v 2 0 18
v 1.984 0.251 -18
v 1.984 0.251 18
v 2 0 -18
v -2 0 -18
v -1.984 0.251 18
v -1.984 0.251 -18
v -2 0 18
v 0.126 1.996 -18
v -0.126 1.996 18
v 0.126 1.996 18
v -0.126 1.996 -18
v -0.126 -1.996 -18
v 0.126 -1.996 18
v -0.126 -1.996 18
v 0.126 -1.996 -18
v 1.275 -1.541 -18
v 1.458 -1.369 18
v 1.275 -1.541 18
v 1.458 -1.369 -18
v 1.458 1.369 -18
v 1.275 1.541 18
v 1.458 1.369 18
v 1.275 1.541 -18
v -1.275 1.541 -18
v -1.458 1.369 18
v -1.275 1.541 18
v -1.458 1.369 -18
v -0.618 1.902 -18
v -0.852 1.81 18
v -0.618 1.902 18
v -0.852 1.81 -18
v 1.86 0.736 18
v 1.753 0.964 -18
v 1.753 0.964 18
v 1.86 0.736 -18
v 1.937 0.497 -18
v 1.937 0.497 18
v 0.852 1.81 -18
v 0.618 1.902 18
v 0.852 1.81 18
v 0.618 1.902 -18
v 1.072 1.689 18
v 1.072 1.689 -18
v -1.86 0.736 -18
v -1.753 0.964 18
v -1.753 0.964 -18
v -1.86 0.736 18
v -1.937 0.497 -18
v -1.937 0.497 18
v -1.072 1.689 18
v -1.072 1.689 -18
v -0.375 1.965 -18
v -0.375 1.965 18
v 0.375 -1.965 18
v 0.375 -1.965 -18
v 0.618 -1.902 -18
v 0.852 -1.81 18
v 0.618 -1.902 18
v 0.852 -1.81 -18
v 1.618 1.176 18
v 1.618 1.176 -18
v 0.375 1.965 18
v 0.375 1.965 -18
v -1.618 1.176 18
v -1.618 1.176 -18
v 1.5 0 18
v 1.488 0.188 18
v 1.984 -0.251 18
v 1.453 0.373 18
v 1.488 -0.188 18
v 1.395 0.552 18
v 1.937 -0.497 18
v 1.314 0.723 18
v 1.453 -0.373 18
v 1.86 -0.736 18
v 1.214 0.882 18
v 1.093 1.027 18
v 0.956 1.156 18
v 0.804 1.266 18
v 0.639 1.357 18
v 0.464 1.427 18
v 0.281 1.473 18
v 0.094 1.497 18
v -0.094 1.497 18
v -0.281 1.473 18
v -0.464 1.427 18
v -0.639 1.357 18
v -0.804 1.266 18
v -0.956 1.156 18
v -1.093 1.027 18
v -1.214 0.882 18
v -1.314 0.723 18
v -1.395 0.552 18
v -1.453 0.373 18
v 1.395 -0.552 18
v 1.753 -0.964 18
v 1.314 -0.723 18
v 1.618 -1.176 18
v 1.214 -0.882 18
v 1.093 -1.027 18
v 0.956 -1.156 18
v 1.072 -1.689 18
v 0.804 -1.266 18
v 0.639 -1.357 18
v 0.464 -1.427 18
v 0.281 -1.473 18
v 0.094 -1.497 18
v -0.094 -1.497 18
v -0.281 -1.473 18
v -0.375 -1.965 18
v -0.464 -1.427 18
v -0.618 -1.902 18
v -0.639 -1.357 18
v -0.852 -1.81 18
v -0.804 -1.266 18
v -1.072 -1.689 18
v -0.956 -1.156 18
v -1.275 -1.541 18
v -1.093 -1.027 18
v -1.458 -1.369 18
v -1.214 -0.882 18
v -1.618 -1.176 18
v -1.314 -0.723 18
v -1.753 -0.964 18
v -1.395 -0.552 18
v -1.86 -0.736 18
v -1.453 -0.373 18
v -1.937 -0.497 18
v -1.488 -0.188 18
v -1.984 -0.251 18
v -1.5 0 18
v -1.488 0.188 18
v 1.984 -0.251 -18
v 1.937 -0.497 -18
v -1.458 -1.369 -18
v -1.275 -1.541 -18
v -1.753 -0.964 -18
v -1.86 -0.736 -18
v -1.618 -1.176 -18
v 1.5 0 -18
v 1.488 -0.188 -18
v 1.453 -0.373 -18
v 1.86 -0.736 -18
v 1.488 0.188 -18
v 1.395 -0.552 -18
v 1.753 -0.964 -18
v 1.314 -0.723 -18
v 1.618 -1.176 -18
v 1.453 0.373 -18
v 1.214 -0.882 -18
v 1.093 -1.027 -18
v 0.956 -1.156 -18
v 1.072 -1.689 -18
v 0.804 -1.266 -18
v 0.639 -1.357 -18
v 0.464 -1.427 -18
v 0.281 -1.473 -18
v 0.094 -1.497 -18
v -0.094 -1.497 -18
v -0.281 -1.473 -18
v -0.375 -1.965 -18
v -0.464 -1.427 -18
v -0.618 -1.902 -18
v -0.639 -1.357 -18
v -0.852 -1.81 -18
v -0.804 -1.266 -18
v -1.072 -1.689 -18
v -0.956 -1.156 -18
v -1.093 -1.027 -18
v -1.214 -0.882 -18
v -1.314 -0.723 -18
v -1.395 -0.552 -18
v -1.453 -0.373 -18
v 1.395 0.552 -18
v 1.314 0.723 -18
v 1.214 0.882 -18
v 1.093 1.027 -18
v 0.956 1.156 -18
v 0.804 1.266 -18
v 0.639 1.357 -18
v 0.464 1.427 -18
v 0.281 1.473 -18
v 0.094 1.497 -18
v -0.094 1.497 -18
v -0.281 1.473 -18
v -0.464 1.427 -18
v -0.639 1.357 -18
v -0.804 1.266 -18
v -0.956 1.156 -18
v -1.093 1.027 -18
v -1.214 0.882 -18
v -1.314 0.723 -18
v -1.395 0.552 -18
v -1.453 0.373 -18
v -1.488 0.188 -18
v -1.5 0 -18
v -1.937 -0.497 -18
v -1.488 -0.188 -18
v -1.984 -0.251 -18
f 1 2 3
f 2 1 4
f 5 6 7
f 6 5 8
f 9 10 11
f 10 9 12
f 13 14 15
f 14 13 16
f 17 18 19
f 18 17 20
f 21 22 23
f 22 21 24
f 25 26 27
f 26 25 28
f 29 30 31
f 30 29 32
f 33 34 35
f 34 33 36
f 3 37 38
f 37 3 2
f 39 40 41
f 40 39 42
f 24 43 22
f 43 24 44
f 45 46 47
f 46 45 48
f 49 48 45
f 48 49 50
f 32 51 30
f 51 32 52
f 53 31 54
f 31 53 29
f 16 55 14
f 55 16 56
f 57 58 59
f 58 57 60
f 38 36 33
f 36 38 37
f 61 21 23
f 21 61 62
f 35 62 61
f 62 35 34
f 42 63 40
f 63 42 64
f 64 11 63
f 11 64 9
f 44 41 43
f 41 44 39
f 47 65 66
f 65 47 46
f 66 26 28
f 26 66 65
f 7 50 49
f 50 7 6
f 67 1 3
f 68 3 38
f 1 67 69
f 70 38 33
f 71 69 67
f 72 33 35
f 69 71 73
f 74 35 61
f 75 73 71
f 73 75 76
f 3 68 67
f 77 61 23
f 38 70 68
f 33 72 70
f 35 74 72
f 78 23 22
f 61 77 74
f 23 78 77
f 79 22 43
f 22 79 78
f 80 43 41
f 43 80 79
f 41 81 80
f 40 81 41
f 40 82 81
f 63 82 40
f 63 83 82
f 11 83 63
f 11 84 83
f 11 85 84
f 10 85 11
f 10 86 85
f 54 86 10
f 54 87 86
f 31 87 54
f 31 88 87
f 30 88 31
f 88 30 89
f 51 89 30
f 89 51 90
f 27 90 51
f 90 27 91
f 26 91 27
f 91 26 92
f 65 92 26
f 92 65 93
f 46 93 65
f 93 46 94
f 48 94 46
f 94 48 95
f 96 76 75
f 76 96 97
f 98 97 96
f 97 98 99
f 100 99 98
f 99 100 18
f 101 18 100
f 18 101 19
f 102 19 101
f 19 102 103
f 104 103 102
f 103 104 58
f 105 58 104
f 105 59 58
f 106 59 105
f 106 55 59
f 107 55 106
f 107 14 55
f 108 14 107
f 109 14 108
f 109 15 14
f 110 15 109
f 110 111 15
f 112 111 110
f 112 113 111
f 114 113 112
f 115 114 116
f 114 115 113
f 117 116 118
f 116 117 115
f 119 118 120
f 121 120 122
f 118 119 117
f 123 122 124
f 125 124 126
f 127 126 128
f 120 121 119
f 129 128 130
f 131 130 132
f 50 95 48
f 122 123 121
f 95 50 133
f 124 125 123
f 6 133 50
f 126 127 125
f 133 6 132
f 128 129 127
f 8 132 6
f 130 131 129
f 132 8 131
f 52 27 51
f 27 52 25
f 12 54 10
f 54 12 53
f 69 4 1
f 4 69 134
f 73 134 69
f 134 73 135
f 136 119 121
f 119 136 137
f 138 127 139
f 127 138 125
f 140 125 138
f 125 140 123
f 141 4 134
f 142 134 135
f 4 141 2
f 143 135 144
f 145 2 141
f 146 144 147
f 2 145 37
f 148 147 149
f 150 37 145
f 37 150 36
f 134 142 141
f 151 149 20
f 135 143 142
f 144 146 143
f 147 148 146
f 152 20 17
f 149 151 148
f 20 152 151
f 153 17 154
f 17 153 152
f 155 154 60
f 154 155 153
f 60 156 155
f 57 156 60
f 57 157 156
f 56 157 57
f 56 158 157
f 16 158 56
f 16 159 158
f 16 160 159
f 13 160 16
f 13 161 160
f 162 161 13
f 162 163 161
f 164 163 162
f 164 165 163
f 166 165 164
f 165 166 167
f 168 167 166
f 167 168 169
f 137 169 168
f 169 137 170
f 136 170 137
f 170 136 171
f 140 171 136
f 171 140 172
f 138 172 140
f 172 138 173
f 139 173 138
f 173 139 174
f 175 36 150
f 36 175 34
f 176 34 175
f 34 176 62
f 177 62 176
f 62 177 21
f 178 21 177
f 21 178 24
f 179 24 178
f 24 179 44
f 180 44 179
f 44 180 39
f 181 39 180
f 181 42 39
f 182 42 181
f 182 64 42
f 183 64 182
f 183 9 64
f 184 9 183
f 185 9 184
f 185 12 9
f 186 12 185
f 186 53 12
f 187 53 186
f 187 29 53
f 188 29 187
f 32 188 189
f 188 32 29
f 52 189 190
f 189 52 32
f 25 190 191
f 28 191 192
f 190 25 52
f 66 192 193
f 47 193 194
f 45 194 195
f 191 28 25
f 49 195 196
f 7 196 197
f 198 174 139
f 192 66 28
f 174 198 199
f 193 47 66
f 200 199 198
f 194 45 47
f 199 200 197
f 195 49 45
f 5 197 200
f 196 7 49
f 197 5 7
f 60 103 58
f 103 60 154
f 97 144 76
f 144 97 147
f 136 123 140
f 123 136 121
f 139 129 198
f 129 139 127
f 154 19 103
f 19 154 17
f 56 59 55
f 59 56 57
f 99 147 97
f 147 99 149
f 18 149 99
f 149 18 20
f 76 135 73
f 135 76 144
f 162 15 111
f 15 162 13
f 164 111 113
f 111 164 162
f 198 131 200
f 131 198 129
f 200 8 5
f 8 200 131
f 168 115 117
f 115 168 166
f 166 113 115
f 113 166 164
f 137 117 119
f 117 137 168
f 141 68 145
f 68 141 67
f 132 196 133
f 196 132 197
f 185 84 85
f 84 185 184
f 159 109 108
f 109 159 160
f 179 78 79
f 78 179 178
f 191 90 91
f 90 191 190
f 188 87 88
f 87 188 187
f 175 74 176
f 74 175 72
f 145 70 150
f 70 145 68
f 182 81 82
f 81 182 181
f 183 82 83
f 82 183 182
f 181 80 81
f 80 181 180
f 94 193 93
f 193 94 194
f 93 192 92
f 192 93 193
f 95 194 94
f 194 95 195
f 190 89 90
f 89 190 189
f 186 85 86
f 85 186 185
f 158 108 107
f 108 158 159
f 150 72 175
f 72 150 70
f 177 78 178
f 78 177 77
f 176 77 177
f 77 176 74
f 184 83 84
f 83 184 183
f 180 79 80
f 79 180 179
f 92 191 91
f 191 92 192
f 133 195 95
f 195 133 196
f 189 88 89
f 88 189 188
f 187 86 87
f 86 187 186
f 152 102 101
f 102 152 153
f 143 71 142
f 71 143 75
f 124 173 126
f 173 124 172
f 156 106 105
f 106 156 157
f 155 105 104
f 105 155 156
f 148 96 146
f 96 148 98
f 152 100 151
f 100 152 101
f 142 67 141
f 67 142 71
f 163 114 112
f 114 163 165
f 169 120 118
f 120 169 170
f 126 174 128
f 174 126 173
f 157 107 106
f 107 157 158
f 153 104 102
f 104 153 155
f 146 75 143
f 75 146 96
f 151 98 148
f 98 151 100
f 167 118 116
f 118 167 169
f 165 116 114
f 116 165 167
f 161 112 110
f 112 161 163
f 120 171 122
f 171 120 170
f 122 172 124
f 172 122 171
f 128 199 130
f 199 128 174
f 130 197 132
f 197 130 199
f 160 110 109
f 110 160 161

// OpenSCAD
$fn = 50;


difference() {
	union() {
		translate(v = [0, 0, -18.0000000000]) {
			cylinder(h = 36, r = 2.0000000000);
		}
	}
	union() {
		translate(v = [0, 0, -100.0000000000]) {
			cylinder(h = 200, r = 1.5000000000);
		}
	}
}
